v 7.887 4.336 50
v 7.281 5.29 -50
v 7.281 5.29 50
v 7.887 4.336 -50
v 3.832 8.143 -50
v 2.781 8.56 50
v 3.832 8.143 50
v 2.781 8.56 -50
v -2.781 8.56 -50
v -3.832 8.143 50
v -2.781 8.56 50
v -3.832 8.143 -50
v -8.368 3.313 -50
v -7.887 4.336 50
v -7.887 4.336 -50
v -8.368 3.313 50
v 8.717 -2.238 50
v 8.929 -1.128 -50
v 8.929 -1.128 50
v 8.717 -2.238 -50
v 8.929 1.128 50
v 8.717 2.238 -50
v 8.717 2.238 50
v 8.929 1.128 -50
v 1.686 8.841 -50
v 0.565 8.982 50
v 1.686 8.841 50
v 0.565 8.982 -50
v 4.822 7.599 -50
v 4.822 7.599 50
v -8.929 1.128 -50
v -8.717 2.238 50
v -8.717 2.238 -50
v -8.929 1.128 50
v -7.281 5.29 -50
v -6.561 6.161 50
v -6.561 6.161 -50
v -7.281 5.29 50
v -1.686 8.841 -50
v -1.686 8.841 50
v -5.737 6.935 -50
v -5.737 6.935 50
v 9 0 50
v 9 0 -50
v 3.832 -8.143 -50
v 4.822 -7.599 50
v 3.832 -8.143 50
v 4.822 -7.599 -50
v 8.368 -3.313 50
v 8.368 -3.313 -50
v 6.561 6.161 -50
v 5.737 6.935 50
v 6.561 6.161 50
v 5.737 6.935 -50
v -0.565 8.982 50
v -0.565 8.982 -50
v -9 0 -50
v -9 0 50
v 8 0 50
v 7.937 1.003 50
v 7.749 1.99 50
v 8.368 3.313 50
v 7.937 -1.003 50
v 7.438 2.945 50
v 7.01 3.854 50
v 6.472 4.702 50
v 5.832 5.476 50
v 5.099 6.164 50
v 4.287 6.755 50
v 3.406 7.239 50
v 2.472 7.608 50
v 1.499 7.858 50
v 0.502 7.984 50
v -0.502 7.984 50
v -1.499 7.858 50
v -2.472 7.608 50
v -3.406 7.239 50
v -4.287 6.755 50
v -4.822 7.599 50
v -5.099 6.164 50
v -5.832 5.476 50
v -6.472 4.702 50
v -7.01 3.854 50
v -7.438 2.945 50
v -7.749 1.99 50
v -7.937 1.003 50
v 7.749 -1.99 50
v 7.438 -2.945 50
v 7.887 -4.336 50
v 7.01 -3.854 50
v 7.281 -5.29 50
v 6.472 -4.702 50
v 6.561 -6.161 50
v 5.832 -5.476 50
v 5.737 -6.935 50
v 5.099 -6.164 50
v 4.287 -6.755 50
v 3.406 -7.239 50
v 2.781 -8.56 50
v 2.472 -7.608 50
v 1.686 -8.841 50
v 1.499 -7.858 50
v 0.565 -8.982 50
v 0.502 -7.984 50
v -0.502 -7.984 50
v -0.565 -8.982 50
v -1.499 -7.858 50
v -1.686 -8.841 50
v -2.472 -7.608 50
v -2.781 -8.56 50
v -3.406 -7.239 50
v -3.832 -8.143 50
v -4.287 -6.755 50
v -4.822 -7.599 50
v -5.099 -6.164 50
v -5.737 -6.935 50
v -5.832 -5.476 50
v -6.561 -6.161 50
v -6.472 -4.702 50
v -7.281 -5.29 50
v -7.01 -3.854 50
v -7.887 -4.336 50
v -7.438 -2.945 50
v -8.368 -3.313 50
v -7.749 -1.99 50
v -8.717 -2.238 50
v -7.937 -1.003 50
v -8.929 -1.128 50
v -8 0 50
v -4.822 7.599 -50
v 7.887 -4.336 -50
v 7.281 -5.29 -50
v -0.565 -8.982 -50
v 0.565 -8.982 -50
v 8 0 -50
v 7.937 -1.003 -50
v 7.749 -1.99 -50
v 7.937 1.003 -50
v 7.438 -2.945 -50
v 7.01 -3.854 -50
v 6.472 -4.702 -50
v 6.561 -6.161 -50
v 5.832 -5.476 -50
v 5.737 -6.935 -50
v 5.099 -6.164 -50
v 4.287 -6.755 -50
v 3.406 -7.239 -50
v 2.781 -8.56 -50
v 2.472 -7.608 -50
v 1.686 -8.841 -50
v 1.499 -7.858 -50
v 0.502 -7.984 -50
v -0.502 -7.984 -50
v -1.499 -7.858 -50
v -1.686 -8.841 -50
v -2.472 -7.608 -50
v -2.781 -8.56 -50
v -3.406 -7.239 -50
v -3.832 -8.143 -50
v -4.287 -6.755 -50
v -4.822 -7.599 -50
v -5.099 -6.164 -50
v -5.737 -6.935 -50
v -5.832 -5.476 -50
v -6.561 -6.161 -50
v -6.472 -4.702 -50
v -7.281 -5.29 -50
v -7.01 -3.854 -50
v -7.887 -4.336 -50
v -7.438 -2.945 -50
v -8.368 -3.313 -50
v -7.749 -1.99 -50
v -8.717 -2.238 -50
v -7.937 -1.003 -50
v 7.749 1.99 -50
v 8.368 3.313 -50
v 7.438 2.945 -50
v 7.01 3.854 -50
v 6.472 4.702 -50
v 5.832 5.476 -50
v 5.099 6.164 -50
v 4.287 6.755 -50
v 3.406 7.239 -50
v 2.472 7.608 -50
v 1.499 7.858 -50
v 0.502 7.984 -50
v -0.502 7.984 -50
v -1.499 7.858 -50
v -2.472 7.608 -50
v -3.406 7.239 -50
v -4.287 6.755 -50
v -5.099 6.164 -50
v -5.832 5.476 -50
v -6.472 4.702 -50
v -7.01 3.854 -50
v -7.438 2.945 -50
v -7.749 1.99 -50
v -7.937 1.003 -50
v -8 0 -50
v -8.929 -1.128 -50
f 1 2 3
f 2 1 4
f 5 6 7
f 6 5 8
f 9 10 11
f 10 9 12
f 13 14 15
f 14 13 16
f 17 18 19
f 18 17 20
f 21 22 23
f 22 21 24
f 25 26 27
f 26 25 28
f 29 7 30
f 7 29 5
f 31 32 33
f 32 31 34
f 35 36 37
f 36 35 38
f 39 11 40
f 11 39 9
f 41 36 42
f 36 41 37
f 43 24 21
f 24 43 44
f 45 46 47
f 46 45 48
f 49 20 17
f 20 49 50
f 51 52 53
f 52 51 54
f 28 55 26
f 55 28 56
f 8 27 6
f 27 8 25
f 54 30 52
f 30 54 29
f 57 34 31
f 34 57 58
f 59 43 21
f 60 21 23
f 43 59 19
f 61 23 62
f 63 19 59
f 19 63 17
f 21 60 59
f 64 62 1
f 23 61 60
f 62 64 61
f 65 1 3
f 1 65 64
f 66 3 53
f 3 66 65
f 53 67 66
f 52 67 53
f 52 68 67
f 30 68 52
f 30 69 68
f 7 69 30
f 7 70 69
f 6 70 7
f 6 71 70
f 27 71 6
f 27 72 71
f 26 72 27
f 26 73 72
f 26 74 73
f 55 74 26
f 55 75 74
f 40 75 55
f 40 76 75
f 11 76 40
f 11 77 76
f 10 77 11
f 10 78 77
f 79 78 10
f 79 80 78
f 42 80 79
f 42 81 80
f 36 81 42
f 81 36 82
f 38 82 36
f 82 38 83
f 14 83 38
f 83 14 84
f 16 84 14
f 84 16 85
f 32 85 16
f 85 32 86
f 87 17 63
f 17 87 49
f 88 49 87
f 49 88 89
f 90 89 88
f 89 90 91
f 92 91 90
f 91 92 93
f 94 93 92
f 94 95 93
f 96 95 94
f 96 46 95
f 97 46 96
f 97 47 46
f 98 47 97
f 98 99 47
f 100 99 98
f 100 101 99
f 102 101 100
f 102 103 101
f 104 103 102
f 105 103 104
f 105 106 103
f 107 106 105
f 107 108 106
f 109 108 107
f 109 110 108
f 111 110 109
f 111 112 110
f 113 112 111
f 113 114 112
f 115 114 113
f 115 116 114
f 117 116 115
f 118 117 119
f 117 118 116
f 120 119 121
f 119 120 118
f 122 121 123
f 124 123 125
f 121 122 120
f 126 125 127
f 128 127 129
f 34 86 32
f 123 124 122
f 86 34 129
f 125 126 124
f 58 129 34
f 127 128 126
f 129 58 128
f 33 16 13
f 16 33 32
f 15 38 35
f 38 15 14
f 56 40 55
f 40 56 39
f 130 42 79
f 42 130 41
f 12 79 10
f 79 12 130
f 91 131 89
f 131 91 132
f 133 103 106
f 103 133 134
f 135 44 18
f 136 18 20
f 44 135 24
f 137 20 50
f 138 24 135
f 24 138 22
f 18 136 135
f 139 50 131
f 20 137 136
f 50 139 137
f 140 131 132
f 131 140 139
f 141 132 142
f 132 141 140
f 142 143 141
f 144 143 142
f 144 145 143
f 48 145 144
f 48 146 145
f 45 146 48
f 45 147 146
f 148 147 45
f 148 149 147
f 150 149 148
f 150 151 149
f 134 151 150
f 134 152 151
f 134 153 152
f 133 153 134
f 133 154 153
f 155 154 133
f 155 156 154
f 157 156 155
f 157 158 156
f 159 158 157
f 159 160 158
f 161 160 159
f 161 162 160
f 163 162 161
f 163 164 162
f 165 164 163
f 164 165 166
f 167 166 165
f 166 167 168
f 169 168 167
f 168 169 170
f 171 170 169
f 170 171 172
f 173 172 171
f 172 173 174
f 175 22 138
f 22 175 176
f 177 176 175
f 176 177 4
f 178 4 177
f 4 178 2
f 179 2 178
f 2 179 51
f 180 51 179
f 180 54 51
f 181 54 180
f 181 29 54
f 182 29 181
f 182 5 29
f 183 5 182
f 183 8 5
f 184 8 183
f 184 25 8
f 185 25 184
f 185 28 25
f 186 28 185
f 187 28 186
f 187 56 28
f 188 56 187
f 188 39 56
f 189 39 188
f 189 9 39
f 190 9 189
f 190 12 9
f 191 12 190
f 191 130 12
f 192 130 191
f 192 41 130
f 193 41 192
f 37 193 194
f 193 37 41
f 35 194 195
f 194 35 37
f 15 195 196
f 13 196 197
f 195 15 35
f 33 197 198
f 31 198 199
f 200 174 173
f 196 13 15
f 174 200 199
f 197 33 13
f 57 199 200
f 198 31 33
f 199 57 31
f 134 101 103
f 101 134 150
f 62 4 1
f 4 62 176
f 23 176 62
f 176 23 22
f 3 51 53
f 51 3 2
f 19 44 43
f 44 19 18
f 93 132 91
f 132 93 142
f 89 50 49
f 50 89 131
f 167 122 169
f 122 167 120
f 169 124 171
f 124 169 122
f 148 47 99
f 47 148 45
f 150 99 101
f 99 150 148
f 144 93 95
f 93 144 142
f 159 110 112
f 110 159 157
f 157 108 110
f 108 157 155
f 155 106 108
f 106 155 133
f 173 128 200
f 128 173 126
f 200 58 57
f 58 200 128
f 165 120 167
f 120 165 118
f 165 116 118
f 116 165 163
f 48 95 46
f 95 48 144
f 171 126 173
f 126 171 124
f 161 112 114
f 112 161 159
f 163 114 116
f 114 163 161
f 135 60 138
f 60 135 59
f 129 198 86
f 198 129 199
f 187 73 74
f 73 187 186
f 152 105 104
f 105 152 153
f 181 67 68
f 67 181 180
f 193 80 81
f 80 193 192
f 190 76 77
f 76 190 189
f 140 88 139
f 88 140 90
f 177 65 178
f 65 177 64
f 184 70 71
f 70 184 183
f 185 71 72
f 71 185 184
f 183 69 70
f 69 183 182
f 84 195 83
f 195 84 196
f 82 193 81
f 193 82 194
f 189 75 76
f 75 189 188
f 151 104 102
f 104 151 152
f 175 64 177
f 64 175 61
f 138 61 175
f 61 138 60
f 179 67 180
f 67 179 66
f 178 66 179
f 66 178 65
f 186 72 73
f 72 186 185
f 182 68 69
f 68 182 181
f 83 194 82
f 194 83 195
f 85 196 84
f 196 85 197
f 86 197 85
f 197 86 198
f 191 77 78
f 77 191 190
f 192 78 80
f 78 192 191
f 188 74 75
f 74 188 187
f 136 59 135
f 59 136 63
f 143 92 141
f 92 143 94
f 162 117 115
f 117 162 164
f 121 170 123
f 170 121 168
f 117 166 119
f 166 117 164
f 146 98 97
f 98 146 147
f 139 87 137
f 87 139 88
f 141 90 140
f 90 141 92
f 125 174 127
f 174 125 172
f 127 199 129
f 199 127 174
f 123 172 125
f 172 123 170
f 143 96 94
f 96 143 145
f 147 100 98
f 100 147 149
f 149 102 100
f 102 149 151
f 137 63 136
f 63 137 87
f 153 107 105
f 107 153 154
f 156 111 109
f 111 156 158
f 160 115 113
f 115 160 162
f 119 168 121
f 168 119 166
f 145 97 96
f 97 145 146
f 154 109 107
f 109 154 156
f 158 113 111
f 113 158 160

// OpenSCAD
$fn = 50;


difference() {
	union() {
		translate(v = [0, 0, -50.0000000000]) {
			cylinder(h = 100, r = 9.0000000000);
		}
	}
	union() {
		translate(v = [0, 0, -100.0000000000]) {
			cylinder(h = 200, r = 8);
		}
	}
}
